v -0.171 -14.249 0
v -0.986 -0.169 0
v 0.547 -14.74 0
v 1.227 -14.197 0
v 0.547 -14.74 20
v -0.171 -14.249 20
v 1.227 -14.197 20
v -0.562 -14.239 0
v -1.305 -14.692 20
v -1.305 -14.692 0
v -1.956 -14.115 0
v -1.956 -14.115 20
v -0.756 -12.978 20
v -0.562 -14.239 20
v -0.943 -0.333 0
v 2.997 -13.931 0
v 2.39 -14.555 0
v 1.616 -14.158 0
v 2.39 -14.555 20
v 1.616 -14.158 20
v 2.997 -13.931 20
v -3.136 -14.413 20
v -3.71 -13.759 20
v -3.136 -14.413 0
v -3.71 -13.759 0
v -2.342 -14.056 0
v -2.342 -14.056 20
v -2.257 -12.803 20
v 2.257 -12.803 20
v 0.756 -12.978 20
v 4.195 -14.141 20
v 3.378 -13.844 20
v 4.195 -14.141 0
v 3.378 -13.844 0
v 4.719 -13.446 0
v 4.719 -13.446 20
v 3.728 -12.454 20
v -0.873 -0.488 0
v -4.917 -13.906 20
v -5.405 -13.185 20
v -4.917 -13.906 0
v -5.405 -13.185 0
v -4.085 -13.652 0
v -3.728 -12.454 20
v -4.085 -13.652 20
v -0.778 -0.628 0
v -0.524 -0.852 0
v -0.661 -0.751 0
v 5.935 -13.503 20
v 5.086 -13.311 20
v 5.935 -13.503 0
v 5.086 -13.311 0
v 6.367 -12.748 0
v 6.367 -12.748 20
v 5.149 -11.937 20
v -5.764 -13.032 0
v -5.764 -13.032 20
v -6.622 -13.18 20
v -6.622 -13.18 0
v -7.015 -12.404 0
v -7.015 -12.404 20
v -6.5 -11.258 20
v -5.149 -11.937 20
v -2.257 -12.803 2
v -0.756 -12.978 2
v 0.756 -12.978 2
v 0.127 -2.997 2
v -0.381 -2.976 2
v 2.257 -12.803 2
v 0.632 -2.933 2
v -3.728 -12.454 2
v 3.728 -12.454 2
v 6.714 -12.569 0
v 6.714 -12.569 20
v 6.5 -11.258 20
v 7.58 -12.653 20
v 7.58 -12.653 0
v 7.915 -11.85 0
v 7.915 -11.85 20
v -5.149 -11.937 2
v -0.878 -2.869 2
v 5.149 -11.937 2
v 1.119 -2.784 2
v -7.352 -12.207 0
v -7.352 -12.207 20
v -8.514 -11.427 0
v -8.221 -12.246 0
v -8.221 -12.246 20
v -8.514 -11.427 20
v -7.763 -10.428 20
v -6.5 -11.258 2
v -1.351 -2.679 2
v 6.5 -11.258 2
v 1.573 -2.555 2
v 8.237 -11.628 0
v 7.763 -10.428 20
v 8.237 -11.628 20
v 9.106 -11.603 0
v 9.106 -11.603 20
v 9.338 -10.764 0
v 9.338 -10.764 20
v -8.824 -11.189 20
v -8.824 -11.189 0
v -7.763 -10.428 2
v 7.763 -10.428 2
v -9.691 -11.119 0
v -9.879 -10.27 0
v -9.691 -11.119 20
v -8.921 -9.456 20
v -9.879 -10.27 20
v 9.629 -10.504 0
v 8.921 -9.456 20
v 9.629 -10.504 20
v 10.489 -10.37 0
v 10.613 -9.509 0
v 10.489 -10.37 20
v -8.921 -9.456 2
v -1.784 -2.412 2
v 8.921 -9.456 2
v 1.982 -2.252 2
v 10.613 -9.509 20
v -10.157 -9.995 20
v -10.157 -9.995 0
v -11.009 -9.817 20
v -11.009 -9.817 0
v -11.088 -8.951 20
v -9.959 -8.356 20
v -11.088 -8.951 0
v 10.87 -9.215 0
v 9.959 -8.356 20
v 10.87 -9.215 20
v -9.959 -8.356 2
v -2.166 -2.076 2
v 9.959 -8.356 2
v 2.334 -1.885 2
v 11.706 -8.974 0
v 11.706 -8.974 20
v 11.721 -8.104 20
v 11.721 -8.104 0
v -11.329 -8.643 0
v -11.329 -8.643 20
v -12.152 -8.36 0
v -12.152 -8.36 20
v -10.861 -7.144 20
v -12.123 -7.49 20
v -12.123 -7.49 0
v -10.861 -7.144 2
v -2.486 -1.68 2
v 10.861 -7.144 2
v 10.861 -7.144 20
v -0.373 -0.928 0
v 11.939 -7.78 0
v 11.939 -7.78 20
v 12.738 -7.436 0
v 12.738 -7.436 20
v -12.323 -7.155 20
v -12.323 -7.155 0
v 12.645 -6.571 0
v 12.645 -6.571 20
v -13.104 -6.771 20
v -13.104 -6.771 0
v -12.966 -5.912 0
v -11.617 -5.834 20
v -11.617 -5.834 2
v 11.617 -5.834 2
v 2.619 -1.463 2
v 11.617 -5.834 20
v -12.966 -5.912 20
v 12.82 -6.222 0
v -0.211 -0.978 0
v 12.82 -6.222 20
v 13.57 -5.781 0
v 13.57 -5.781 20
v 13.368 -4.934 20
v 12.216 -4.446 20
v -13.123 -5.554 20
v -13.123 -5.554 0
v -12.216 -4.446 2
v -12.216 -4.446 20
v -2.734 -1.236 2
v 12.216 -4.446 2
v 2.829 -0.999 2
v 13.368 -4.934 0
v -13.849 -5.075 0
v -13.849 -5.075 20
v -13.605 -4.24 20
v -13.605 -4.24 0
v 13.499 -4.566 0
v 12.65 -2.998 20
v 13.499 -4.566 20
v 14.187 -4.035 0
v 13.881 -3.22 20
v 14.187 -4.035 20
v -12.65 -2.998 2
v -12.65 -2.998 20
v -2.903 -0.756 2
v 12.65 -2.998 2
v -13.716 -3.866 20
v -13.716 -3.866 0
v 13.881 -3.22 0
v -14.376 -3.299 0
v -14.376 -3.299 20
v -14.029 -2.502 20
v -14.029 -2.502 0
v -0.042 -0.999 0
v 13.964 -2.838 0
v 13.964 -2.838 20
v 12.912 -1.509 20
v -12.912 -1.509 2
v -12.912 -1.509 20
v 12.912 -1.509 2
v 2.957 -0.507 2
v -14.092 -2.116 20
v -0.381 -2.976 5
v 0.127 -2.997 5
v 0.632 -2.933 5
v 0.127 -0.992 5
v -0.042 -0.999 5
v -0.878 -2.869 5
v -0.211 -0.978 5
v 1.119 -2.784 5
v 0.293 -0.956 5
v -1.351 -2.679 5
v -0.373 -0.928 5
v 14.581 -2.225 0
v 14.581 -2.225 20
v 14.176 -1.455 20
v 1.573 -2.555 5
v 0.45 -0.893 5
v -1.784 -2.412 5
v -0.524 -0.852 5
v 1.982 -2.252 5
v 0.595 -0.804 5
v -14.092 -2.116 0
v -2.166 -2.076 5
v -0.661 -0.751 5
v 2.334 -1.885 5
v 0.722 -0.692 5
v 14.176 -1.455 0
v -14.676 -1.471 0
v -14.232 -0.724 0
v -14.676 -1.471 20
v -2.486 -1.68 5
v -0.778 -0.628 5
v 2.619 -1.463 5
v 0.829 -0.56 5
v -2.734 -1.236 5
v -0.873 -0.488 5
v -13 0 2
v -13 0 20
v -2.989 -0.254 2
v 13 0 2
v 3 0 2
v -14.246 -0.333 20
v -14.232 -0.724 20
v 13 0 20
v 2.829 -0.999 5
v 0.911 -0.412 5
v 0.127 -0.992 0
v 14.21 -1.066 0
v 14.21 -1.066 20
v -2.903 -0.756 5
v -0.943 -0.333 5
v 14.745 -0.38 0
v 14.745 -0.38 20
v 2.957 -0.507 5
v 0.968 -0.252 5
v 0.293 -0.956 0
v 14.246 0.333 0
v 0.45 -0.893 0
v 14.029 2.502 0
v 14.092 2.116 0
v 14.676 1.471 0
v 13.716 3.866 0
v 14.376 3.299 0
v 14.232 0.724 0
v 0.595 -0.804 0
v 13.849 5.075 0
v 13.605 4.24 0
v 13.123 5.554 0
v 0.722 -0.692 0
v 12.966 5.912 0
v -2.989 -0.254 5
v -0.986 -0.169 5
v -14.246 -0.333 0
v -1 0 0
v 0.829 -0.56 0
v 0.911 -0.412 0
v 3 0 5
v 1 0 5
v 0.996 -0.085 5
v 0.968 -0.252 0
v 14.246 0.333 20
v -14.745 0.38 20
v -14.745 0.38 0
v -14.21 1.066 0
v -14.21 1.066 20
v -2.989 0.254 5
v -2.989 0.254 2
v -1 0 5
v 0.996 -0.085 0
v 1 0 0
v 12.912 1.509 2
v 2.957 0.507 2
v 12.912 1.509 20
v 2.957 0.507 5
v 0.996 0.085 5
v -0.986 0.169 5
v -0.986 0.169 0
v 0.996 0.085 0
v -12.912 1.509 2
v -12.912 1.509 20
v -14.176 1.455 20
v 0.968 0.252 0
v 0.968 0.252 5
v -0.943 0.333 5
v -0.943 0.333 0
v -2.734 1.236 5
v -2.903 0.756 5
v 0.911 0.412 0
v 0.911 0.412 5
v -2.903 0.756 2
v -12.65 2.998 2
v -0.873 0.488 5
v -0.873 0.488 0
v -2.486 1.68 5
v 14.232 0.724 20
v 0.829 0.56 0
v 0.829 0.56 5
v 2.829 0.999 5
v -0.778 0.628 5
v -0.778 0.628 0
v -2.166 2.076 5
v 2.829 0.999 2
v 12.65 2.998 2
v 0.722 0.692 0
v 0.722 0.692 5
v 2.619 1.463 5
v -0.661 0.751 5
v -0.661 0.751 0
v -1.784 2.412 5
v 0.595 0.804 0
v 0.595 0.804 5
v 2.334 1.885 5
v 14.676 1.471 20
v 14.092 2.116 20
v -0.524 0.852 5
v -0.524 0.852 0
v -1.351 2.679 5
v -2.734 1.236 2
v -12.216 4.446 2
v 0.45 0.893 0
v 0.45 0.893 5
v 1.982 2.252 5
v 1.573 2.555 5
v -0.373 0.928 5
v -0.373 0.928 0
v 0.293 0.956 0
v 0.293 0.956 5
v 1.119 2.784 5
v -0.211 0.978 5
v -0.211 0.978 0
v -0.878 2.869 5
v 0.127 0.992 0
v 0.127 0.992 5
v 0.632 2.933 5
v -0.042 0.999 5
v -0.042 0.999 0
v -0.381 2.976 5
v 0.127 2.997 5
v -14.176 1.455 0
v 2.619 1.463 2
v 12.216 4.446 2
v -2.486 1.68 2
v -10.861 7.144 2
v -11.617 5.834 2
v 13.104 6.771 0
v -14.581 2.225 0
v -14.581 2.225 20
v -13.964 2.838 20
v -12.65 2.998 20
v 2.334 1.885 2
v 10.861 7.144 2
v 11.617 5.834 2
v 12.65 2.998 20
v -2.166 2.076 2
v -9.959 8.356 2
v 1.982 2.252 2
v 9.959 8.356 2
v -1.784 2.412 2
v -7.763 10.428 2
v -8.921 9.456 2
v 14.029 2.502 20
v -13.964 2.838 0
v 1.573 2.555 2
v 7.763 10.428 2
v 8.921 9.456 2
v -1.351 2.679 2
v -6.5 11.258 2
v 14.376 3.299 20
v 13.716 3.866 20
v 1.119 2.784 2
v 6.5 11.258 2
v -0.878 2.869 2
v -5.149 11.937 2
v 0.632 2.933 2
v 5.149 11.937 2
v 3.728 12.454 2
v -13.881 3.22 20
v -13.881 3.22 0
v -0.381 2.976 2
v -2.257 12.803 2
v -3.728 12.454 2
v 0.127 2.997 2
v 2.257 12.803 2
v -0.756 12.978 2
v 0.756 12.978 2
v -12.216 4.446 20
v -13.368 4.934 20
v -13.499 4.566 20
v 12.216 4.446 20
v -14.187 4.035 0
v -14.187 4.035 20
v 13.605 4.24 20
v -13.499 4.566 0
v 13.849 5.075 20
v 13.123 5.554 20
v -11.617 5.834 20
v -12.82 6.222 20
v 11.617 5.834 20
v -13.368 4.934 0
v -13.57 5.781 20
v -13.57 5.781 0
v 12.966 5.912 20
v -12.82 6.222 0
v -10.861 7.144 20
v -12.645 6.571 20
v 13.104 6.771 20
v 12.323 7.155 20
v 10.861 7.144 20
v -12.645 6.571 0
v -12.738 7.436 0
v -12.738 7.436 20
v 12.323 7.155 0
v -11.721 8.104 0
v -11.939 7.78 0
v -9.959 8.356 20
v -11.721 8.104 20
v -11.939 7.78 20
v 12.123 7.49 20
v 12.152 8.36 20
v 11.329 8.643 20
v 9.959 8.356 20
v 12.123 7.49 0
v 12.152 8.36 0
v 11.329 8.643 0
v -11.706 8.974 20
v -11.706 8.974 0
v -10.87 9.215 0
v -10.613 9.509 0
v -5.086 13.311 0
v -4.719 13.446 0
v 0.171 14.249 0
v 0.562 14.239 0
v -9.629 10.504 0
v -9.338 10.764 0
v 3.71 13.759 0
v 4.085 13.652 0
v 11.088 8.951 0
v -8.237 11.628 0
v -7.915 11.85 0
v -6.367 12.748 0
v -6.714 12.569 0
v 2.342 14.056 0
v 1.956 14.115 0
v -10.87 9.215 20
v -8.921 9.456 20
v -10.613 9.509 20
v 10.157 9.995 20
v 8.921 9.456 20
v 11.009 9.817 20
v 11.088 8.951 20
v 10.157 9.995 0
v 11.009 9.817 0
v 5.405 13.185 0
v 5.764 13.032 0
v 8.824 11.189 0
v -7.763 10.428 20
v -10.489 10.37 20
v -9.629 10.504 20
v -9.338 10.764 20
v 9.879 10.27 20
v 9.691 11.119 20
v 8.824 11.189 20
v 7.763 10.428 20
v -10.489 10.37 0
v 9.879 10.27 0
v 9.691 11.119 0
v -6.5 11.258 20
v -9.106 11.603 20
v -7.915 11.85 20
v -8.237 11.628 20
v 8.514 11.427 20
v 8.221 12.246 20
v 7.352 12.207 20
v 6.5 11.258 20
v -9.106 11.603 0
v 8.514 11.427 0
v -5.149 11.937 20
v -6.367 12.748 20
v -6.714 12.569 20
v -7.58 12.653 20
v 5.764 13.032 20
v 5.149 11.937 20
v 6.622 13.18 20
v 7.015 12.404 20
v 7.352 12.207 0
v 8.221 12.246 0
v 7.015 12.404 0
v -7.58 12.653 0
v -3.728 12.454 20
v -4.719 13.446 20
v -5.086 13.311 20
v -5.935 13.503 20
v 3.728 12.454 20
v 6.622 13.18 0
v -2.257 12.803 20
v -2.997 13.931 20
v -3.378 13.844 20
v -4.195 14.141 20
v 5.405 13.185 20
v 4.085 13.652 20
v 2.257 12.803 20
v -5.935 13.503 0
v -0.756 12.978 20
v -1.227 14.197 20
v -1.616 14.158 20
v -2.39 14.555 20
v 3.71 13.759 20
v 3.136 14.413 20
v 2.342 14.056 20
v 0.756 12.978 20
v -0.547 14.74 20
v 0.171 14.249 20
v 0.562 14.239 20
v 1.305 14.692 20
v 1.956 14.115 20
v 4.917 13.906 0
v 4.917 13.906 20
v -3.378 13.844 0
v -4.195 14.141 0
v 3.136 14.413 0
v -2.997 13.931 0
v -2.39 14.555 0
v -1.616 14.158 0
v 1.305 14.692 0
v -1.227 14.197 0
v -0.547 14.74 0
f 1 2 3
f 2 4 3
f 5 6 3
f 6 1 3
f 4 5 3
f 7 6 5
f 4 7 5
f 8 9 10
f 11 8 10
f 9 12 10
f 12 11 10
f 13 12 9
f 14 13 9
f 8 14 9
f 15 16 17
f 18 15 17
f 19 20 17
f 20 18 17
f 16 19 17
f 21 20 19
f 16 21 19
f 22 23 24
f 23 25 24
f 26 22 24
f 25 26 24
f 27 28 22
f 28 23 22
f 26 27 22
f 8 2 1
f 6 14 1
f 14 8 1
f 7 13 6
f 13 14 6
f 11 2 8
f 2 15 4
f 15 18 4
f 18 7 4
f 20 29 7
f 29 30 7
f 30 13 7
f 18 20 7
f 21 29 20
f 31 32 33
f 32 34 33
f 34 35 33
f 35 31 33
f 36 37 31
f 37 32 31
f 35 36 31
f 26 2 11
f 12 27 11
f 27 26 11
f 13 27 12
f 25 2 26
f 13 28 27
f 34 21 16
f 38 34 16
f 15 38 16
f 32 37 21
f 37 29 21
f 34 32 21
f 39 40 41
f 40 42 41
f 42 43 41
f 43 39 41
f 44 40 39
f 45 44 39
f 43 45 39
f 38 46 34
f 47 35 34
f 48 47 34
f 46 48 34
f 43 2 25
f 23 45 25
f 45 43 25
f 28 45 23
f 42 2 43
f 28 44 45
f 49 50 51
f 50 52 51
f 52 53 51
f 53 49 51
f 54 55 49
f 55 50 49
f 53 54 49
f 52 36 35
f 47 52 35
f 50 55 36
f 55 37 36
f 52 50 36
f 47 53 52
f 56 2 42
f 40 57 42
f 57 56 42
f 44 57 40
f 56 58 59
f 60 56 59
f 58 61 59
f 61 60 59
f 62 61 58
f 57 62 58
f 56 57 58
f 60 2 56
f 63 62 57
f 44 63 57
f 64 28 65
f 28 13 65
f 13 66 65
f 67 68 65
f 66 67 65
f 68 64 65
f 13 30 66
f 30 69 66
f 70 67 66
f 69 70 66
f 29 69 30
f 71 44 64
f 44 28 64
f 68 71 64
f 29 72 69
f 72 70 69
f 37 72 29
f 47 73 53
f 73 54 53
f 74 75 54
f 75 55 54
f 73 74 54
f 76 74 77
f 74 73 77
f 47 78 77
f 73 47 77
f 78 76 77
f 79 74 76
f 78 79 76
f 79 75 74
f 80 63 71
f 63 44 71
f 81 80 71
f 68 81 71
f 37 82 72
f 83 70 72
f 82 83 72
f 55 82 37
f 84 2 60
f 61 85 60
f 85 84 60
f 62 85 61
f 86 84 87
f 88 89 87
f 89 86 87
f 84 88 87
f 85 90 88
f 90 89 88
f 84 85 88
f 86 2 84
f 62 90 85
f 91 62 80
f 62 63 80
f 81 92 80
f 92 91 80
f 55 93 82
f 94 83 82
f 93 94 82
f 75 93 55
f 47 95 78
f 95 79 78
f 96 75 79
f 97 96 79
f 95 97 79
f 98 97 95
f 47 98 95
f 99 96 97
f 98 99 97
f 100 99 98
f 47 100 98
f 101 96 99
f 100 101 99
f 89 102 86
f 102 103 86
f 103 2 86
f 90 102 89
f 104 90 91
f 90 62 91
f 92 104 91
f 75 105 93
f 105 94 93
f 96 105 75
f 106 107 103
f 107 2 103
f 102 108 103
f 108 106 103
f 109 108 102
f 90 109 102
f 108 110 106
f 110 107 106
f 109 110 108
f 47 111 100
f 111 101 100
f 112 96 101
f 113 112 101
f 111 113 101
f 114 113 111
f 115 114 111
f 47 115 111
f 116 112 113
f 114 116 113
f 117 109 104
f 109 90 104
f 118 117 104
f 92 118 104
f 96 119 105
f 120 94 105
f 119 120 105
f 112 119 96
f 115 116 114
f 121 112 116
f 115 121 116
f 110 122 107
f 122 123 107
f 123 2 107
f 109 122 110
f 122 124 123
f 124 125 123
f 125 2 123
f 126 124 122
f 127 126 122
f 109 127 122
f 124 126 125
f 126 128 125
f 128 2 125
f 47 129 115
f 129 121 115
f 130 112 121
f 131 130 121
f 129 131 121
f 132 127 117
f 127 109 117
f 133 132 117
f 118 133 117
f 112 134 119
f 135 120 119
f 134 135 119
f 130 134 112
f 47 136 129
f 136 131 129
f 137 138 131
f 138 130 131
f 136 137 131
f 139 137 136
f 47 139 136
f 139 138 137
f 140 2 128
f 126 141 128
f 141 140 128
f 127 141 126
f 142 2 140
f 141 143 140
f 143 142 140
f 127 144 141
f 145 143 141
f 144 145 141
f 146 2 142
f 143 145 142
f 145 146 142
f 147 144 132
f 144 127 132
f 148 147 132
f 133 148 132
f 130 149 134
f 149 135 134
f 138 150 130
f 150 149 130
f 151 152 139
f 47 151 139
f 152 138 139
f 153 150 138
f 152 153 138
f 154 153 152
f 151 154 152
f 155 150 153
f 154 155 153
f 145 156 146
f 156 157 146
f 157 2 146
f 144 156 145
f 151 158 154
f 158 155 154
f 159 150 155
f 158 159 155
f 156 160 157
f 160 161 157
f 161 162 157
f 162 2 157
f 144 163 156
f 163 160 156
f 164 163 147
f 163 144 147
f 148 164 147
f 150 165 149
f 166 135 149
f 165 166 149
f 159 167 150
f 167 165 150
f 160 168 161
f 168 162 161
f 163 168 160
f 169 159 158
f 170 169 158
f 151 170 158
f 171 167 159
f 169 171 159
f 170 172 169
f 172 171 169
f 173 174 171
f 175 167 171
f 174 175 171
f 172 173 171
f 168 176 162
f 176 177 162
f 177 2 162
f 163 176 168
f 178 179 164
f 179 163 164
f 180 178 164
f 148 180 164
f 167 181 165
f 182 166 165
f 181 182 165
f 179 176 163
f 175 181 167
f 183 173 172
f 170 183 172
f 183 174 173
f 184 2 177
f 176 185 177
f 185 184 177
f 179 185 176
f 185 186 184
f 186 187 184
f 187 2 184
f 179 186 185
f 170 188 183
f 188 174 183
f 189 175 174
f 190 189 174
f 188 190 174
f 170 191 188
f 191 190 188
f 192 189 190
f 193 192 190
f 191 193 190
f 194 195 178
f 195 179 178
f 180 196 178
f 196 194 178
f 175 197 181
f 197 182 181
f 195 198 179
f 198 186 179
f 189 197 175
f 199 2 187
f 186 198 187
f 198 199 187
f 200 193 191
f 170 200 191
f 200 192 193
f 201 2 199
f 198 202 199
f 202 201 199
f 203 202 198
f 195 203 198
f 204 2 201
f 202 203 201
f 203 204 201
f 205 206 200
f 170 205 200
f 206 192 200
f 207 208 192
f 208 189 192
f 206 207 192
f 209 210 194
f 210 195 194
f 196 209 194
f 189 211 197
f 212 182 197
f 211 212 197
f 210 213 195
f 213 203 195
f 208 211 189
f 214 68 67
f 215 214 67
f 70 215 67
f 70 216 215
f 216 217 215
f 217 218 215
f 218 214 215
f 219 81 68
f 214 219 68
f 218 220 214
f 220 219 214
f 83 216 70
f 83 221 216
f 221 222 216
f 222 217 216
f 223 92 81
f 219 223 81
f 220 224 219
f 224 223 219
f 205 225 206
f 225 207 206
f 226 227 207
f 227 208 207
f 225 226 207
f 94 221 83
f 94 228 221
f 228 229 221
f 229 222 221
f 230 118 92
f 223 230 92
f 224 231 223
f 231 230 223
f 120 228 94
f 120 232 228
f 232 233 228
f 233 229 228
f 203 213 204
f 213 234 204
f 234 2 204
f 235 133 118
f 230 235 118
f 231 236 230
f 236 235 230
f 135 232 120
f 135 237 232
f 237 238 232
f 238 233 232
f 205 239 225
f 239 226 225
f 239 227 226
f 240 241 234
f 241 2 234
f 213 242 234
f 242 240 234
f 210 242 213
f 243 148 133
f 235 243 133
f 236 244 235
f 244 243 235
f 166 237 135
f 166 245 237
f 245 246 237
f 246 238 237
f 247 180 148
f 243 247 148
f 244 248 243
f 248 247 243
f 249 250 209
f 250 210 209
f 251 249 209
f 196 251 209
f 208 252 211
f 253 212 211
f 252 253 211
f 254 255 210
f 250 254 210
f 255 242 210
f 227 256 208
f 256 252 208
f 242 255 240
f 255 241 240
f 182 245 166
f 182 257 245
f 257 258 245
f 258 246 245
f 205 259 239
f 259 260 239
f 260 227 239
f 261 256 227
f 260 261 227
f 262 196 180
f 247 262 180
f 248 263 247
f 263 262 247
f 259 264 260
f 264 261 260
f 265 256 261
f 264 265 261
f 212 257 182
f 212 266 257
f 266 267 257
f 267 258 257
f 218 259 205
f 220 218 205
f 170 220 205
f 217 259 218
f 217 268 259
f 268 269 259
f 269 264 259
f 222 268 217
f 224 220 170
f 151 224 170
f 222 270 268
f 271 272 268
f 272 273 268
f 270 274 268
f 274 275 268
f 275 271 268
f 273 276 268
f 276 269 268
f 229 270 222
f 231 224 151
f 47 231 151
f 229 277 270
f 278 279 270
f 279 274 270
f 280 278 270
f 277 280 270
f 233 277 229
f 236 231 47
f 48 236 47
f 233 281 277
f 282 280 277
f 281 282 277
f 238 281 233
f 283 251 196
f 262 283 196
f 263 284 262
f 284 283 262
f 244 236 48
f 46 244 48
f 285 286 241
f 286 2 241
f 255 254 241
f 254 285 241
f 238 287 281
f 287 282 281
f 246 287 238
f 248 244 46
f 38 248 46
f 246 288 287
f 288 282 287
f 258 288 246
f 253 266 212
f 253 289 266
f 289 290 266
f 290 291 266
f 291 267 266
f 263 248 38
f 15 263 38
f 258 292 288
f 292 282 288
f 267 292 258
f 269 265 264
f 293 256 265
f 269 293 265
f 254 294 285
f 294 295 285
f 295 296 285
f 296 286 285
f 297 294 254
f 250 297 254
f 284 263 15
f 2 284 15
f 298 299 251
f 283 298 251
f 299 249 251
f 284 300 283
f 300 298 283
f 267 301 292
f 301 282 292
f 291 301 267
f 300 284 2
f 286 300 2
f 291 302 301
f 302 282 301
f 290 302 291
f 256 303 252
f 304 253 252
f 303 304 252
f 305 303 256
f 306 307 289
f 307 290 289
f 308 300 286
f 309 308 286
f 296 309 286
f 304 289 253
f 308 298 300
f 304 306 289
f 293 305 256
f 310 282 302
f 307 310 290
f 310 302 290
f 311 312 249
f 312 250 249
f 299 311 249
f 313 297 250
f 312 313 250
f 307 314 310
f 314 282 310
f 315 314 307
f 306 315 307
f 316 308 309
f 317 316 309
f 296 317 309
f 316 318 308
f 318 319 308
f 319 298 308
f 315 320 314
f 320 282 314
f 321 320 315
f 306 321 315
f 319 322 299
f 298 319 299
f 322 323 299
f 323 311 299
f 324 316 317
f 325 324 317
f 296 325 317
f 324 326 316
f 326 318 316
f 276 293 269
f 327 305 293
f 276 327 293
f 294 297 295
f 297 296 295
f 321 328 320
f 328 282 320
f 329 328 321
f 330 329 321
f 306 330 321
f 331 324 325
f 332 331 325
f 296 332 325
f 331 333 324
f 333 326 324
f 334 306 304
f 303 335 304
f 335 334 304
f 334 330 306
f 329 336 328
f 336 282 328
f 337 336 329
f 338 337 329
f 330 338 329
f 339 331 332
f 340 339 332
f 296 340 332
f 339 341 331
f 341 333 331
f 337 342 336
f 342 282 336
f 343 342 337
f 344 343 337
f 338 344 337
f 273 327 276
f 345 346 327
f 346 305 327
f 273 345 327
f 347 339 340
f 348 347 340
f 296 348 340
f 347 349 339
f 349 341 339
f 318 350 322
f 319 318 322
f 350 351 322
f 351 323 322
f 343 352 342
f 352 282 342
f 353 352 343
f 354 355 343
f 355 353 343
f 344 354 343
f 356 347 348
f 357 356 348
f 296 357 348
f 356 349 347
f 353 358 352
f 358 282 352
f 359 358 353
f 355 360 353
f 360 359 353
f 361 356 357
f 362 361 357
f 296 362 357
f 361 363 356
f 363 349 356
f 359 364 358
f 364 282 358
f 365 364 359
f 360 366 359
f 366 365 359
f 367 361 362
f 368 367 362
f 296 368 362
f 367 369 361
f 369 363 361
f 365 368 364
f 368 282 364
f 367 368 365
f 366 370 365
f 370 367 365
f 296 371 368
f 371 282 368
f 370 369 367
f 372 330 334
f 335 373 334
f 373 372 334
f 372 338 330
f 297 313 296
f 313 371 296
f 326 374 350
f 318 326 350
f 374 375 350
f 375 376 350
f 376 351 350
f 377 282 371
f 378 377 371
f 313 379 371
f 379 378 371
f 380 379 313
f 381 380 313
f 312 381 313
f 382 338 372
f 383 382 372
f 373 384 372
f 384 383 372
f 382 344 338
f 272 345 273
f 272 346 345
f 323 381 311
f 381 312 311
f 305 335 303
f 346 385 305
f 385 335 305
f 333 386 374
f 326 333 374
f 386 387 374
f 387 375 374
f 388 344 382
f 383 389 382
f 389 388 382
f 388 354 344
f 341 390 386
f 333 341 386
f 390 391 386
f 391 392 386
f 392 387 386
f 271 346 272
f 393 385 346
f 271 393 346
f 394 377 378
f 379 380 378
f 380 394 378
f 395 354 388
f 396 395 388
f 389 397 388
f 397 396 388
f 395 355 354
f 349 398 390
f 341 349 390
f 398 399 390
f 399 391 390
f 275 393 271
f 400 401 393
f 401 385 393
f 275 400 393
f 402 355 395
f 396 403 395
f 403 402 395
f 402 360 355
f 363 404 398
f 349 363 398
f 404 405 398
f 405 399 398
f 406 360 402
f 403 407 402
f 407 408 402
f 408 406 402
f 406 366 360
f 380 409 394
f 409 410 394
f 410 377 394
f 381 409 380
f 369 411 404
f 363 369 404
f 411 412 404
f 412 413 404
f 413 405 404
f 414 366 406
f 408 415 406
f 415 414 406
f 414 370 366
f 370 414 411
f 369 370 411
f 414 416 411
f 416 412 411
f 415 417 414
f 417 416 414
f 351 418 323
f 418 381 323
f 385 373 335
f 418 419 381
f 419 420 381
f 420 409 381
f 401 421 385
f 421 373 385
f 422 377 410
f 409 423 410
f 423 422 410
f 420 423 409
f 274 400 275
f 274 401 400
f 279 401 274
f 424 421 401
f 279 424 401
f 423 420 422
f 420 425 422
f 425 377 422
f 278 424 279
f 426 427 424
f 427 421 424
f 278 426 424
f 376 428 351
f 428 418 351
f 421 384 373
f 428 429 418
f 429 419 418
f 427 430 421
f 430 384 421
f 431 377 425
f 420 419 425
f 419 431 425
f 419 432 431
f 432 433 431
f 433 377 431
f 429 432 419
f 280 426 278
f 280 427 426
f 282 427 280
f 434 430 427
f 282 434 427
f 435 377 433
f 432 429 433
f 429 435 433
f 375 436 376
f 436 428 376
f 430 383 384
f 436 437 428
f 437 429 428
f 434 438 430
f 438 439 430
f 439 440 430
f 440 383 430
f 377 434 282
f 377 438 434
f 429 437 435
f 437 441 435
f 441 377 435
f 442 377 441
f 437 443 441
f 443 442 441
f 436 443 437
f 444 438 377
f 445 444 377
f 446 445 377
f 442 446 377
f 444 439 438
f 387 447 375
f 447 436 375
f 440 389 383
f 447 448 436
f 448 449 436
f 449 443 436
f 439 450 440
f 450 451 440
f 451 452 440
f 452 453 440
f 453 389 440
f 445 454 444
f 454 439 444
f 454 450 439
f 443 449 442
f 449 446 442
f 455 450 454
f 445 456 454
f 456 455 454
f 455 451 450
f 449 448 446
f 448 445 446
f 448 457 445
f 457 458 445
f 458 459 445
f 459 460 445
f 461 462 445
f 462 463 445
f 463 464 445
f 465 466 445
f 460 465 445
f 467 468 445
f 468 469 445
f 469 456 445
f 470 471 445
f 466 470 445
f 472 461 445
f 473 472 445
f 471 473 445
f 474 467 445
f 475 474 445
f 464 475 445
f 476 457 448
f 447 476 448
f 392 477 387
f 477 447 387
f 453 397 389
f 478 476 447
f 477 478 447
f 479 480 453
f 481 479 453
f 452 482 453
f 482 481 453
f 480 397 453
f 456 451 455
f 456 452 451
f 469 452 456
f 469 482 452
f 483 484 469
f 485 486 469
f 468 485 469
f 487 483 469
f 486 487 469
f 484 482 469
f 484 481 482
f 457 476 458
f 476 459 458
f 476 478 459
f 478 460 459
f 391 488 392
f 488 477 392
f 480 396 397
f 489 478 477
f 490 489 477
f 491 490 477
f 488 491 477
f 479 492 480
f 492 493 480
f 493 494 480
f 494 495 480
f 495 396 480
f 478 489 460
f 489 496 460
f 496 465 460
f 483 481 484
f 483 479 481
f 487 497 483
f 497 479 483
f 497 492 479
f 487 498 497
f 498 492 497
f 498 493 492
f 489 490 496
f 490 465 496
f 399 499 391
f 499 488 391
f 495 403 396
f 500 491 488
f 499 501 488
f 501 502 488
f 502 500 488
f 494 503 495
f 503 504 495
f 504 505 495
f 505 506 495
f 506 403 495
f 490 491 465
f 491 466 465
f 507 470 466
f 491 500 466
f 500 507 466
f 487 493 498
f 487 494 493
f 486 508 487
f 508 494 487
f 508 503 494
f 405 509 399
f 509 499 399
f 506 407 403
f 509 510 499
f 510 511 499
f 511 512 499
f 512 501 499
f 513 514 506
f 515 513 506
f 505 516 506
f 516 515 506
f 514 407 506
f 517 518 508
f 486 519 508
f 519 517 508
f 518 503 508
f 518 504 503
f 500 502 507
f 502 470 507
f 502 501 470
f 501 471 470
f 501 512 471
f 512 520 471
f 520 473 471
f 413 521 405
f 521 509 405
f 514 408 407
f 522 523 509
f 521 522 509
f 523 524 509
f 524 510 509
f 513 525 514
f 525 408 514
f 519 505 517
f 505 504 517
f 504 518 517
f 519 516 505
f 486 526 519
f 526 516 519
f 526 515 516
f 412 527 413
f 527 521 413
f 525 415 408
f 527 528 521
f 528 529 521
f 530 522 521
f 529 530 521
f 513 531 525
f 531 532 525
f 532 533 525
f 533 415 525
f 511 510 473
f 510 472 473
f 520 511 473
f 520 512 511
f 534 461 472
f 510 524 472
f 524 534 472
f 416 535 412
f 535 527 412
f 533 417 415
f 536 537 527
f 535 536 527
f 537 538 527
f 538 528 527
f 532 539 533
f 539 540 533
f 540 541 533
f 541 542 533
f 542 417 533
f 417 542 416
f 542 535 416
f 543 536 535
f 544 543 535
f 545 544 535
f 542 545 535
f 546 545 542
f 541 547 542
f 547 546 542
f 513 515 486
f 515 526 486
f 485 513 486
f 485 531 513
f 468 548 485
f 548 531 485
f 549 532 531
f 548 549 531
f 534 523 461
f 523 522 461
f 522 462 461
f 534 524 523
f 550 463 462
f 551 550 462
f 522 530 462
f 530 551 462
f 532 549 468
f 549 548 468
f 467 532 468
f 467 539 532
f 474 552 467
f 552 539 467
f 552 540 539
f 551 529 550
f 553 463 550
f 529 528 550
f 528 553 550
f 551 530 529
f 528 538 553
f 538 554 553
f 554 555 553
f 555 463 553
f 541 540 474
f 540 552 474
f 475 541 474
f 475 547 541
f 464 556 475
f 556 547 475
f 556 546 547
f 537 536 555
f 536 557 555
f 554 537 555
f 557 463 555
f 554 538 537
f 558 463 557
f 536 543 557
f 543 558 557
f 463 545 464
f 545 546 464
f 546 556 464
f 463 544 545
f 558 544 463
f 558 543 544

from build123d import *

# Parameters (mm, degrees)
ESQUISSE1_R             = 1
BOSS_EXTRU_1_DEPTH      = 20
ESQUISSE2_R             = 13
ESQUISSE2_R_2           = 3
ENL_V_MAT_EXTRU_1_DEPTH = 18
ESQUISSE3_R             = 3
ENL_V_MAT_EXTRU_2_DEPTH = 15


with BuildPart() as part:
    # Esquisse1 → Boss.-Extru.1 (new body)
    with BuildSketch(Plane.XY):
        Polygon((12.738384473, -7.436132127), (12.644521362, -6.571040977), (12.819850246, -6.222052689), (13.569932991, -5.780953088), (13.368385348, -4.934447607), (13.498591881, -4.56623666), (14.18747556, -4.034604965), (13.881421911, -3.22003505), (13.964452658, -2.838408351), (14.581273164, -2.224628712), (14.175540158, -1.454840618), (14.210085674, -1.065816647), (14.74511538, -0.379568735), (14.246101669, 0.333297521), (14.231617151, 0.723583623), (14.676418318, 1.471477268), (14.091993646, 2.116179358), (14.028707524, 2.501572546), (14.376265372, 3.299317195), (13.715646465, 3.865687783), (13.604556799, 4.240110176), (13.849390133, 5.075124919), (13.122995347, 5.554232002), (12.965854086, 5.911778736), (13.104101738, 6.770894891), (12.323386752, 7.155182664), (12.122672109, 7.490215013), (12.152153831, 8.359883807), (11.329430986, 8.643291822), (11.088308351, 8.950526125), (11.008559199, 9.81703236), (10.156803327, 9.995091104), (9.879075346, 10.269682094), (9.691353012, 11.119360449), (8.823996811, 11.189261829), (8.514043422, 11.426879041), (8.221308398, 12.246329582), (7.352030594, 12.206971211), (7.014739946, 12.403867279), (6.62160884, 13.180166781), (5.764118463, 13.032169365), (5.404809832, 13.185239121), (4.917482555, 13.906144876), (4.08530274, 13.651842422), (3.709642638, 13.758671865), (3.135804633, 14.41281476), (2.342059353, 14.05621777), (1.955972163, 14.115122135), (1.304673198, 14.692185945), (0.561880291, 14.238918166), (0.171454839, 14.248968497), (-0.547033712, 14.739852581), (-1.227159959, 14.197062317), (-1.61576643, 14.158100114), (-2.390113575, 14.555062937), (-2.996847164, 13.931310314), (-3.377506098, 13.843950035), (-4.195499918, 14.140731255), (-4.719272298, 13.445853226), (-5.085980477, 13.311472593), (-5.934720721, 13.503391795), (-6.367271689, 12.748347), (-6.714245905, 12.569065277), (-7.580347433, 12.653095779), (-7.914855402, 11.849791726), (-8.236623665, 11.628436292), (-9.106427538, 11.603252884), (-9.337617118, 10.764358158), (-9.629104949, 10.504419922), (-10.488893841, 10.37041976), (-10.613119033, 9.509164232), (-10.869729496, 9.214742573), (-11.705944022, 8.974038921), (-11.721245721, 8.104005105), (-11.938931915, 7.77974323), (-12.738384473, 7.436132127), (-12.644521362, 6.571040977), (-12.819850246, 6.222052689), (-13.569932991, 5.780953088), (-13.368385348, 4.934447607), (-13.498591881, 4.56623666), (-14.18747556, 4.034604965), (-13.881421911, 3.22003505), (-13.964452658, 2.838408351), (-14.581273164, 2.224628712), (-14.175540158, 1.454840618), (-14.210085674, 1.065816647), (-14.74511538, 0.379568735), (-14.246101669, -0.333297521), (-14.231617151, -0.723583623), (-14.676418318, -1.471477268), (-14.091993646, -2.116179358), (-14.028707524, -2.501572546), (-14.376265372, -3.299317195), (-13.715646465, -3.865687783), (-13.604556799, -4.240110176), (-13.849390133, -5.075124919), (-13.122995347, -5.554232002), (-12.965854086, -5.911778736), (-13.104101738, -6.770894891), (-12.323386752, -7.155182664), (-12.122672109, -7.490215013), (-12.152153831, -8.359883807), (-11.329430986, -8.643291822), (-11.088308351, -8.950526125), (-11.008559199, -9.81703236), (-10.156803327, -9.995091104), (-9.879075346, -10.269682094), (-9.691353012, -11.119360449), (-8.823996811, -11.189261829), (-8.514043422, -11.426879041), (-8.221308398, -12.246329582), (-7.352030594, -12.206971211), (-7.014739946, -12.403867279), (-6.62160884, -13.180166781), (-5.764118463, -13.032169365), (-5.404809832, -13.185239121), (-4.917482555, -13.906144876), (-4.08530274, -13.651842422), (-3.709642638, -13.758671865), (-3.135804633, -14.41281476), (-2.342059353, -14.05621777), (-1.955972163, -14.115122135), (-1.304673198, -14.692185945), (-0.561880291, -14.238918166), (-0.171454839, -14.248968497), (0.547033712, -14.739852581), (1.227159959, -14.197062317), (1.61576643, -14.158100114), (2.390113575, -14.555062937), (2.996847164, -13.931310314), (3.377506098, -13.843950035), (4.195499918, -14.140731255), (4.719272298, -13.445853226), (5.085980477, -13.311472593), (5.934720721, -13.503391795), (6.367271689, -12.748347), (6.714245905, -12.569065277), (7.580347433, -12.653095779), (7.914855402, -11.849791726), (8.236623665, -11.628436292), (9.106427538, -11.603252884), (9.337617118, -10.764358158), (9.629104949, -10.504419922), (10.488893841, -10.37041976), (10.613119033, -9.509164232), (10.869729496, -9.214742573), (11.705944022, -8.974038921), (11.721245721, -8.104005105), (11.938931915, -7.77974323), align=None)
        Circle(ESQUISSE1_R, mode=Mode.SUBTRACT)
    extrude(amount=BOSS_EXTRU_1_DEPTH)

    # Esquisse2 → Enlèv. mat.-Extru.1 (cut)
    with BuildSketch(Plane.XY.offset(20)):
        Circle(ESQUISSE2_R)
        Circle(ESQUISSE2_R_2, mode=Mode.SUBTRACT)
    extrude(amount=-ENL_V_MAT_EXTRU_1_DEPTH, mode=Mode.SUBTRACT)

    # Esquisse3 → Enlèv. mat.-Extru.2 (cut)
    with BuildSketch(Plane.XY.offset(20)):
        Circle(ESQUISSE3_R)
    extrude(amount=-ENL_V_MAT_EXTRU_2_DEPTH, mode=Mode.SUBTRACT)


solid = part.part
